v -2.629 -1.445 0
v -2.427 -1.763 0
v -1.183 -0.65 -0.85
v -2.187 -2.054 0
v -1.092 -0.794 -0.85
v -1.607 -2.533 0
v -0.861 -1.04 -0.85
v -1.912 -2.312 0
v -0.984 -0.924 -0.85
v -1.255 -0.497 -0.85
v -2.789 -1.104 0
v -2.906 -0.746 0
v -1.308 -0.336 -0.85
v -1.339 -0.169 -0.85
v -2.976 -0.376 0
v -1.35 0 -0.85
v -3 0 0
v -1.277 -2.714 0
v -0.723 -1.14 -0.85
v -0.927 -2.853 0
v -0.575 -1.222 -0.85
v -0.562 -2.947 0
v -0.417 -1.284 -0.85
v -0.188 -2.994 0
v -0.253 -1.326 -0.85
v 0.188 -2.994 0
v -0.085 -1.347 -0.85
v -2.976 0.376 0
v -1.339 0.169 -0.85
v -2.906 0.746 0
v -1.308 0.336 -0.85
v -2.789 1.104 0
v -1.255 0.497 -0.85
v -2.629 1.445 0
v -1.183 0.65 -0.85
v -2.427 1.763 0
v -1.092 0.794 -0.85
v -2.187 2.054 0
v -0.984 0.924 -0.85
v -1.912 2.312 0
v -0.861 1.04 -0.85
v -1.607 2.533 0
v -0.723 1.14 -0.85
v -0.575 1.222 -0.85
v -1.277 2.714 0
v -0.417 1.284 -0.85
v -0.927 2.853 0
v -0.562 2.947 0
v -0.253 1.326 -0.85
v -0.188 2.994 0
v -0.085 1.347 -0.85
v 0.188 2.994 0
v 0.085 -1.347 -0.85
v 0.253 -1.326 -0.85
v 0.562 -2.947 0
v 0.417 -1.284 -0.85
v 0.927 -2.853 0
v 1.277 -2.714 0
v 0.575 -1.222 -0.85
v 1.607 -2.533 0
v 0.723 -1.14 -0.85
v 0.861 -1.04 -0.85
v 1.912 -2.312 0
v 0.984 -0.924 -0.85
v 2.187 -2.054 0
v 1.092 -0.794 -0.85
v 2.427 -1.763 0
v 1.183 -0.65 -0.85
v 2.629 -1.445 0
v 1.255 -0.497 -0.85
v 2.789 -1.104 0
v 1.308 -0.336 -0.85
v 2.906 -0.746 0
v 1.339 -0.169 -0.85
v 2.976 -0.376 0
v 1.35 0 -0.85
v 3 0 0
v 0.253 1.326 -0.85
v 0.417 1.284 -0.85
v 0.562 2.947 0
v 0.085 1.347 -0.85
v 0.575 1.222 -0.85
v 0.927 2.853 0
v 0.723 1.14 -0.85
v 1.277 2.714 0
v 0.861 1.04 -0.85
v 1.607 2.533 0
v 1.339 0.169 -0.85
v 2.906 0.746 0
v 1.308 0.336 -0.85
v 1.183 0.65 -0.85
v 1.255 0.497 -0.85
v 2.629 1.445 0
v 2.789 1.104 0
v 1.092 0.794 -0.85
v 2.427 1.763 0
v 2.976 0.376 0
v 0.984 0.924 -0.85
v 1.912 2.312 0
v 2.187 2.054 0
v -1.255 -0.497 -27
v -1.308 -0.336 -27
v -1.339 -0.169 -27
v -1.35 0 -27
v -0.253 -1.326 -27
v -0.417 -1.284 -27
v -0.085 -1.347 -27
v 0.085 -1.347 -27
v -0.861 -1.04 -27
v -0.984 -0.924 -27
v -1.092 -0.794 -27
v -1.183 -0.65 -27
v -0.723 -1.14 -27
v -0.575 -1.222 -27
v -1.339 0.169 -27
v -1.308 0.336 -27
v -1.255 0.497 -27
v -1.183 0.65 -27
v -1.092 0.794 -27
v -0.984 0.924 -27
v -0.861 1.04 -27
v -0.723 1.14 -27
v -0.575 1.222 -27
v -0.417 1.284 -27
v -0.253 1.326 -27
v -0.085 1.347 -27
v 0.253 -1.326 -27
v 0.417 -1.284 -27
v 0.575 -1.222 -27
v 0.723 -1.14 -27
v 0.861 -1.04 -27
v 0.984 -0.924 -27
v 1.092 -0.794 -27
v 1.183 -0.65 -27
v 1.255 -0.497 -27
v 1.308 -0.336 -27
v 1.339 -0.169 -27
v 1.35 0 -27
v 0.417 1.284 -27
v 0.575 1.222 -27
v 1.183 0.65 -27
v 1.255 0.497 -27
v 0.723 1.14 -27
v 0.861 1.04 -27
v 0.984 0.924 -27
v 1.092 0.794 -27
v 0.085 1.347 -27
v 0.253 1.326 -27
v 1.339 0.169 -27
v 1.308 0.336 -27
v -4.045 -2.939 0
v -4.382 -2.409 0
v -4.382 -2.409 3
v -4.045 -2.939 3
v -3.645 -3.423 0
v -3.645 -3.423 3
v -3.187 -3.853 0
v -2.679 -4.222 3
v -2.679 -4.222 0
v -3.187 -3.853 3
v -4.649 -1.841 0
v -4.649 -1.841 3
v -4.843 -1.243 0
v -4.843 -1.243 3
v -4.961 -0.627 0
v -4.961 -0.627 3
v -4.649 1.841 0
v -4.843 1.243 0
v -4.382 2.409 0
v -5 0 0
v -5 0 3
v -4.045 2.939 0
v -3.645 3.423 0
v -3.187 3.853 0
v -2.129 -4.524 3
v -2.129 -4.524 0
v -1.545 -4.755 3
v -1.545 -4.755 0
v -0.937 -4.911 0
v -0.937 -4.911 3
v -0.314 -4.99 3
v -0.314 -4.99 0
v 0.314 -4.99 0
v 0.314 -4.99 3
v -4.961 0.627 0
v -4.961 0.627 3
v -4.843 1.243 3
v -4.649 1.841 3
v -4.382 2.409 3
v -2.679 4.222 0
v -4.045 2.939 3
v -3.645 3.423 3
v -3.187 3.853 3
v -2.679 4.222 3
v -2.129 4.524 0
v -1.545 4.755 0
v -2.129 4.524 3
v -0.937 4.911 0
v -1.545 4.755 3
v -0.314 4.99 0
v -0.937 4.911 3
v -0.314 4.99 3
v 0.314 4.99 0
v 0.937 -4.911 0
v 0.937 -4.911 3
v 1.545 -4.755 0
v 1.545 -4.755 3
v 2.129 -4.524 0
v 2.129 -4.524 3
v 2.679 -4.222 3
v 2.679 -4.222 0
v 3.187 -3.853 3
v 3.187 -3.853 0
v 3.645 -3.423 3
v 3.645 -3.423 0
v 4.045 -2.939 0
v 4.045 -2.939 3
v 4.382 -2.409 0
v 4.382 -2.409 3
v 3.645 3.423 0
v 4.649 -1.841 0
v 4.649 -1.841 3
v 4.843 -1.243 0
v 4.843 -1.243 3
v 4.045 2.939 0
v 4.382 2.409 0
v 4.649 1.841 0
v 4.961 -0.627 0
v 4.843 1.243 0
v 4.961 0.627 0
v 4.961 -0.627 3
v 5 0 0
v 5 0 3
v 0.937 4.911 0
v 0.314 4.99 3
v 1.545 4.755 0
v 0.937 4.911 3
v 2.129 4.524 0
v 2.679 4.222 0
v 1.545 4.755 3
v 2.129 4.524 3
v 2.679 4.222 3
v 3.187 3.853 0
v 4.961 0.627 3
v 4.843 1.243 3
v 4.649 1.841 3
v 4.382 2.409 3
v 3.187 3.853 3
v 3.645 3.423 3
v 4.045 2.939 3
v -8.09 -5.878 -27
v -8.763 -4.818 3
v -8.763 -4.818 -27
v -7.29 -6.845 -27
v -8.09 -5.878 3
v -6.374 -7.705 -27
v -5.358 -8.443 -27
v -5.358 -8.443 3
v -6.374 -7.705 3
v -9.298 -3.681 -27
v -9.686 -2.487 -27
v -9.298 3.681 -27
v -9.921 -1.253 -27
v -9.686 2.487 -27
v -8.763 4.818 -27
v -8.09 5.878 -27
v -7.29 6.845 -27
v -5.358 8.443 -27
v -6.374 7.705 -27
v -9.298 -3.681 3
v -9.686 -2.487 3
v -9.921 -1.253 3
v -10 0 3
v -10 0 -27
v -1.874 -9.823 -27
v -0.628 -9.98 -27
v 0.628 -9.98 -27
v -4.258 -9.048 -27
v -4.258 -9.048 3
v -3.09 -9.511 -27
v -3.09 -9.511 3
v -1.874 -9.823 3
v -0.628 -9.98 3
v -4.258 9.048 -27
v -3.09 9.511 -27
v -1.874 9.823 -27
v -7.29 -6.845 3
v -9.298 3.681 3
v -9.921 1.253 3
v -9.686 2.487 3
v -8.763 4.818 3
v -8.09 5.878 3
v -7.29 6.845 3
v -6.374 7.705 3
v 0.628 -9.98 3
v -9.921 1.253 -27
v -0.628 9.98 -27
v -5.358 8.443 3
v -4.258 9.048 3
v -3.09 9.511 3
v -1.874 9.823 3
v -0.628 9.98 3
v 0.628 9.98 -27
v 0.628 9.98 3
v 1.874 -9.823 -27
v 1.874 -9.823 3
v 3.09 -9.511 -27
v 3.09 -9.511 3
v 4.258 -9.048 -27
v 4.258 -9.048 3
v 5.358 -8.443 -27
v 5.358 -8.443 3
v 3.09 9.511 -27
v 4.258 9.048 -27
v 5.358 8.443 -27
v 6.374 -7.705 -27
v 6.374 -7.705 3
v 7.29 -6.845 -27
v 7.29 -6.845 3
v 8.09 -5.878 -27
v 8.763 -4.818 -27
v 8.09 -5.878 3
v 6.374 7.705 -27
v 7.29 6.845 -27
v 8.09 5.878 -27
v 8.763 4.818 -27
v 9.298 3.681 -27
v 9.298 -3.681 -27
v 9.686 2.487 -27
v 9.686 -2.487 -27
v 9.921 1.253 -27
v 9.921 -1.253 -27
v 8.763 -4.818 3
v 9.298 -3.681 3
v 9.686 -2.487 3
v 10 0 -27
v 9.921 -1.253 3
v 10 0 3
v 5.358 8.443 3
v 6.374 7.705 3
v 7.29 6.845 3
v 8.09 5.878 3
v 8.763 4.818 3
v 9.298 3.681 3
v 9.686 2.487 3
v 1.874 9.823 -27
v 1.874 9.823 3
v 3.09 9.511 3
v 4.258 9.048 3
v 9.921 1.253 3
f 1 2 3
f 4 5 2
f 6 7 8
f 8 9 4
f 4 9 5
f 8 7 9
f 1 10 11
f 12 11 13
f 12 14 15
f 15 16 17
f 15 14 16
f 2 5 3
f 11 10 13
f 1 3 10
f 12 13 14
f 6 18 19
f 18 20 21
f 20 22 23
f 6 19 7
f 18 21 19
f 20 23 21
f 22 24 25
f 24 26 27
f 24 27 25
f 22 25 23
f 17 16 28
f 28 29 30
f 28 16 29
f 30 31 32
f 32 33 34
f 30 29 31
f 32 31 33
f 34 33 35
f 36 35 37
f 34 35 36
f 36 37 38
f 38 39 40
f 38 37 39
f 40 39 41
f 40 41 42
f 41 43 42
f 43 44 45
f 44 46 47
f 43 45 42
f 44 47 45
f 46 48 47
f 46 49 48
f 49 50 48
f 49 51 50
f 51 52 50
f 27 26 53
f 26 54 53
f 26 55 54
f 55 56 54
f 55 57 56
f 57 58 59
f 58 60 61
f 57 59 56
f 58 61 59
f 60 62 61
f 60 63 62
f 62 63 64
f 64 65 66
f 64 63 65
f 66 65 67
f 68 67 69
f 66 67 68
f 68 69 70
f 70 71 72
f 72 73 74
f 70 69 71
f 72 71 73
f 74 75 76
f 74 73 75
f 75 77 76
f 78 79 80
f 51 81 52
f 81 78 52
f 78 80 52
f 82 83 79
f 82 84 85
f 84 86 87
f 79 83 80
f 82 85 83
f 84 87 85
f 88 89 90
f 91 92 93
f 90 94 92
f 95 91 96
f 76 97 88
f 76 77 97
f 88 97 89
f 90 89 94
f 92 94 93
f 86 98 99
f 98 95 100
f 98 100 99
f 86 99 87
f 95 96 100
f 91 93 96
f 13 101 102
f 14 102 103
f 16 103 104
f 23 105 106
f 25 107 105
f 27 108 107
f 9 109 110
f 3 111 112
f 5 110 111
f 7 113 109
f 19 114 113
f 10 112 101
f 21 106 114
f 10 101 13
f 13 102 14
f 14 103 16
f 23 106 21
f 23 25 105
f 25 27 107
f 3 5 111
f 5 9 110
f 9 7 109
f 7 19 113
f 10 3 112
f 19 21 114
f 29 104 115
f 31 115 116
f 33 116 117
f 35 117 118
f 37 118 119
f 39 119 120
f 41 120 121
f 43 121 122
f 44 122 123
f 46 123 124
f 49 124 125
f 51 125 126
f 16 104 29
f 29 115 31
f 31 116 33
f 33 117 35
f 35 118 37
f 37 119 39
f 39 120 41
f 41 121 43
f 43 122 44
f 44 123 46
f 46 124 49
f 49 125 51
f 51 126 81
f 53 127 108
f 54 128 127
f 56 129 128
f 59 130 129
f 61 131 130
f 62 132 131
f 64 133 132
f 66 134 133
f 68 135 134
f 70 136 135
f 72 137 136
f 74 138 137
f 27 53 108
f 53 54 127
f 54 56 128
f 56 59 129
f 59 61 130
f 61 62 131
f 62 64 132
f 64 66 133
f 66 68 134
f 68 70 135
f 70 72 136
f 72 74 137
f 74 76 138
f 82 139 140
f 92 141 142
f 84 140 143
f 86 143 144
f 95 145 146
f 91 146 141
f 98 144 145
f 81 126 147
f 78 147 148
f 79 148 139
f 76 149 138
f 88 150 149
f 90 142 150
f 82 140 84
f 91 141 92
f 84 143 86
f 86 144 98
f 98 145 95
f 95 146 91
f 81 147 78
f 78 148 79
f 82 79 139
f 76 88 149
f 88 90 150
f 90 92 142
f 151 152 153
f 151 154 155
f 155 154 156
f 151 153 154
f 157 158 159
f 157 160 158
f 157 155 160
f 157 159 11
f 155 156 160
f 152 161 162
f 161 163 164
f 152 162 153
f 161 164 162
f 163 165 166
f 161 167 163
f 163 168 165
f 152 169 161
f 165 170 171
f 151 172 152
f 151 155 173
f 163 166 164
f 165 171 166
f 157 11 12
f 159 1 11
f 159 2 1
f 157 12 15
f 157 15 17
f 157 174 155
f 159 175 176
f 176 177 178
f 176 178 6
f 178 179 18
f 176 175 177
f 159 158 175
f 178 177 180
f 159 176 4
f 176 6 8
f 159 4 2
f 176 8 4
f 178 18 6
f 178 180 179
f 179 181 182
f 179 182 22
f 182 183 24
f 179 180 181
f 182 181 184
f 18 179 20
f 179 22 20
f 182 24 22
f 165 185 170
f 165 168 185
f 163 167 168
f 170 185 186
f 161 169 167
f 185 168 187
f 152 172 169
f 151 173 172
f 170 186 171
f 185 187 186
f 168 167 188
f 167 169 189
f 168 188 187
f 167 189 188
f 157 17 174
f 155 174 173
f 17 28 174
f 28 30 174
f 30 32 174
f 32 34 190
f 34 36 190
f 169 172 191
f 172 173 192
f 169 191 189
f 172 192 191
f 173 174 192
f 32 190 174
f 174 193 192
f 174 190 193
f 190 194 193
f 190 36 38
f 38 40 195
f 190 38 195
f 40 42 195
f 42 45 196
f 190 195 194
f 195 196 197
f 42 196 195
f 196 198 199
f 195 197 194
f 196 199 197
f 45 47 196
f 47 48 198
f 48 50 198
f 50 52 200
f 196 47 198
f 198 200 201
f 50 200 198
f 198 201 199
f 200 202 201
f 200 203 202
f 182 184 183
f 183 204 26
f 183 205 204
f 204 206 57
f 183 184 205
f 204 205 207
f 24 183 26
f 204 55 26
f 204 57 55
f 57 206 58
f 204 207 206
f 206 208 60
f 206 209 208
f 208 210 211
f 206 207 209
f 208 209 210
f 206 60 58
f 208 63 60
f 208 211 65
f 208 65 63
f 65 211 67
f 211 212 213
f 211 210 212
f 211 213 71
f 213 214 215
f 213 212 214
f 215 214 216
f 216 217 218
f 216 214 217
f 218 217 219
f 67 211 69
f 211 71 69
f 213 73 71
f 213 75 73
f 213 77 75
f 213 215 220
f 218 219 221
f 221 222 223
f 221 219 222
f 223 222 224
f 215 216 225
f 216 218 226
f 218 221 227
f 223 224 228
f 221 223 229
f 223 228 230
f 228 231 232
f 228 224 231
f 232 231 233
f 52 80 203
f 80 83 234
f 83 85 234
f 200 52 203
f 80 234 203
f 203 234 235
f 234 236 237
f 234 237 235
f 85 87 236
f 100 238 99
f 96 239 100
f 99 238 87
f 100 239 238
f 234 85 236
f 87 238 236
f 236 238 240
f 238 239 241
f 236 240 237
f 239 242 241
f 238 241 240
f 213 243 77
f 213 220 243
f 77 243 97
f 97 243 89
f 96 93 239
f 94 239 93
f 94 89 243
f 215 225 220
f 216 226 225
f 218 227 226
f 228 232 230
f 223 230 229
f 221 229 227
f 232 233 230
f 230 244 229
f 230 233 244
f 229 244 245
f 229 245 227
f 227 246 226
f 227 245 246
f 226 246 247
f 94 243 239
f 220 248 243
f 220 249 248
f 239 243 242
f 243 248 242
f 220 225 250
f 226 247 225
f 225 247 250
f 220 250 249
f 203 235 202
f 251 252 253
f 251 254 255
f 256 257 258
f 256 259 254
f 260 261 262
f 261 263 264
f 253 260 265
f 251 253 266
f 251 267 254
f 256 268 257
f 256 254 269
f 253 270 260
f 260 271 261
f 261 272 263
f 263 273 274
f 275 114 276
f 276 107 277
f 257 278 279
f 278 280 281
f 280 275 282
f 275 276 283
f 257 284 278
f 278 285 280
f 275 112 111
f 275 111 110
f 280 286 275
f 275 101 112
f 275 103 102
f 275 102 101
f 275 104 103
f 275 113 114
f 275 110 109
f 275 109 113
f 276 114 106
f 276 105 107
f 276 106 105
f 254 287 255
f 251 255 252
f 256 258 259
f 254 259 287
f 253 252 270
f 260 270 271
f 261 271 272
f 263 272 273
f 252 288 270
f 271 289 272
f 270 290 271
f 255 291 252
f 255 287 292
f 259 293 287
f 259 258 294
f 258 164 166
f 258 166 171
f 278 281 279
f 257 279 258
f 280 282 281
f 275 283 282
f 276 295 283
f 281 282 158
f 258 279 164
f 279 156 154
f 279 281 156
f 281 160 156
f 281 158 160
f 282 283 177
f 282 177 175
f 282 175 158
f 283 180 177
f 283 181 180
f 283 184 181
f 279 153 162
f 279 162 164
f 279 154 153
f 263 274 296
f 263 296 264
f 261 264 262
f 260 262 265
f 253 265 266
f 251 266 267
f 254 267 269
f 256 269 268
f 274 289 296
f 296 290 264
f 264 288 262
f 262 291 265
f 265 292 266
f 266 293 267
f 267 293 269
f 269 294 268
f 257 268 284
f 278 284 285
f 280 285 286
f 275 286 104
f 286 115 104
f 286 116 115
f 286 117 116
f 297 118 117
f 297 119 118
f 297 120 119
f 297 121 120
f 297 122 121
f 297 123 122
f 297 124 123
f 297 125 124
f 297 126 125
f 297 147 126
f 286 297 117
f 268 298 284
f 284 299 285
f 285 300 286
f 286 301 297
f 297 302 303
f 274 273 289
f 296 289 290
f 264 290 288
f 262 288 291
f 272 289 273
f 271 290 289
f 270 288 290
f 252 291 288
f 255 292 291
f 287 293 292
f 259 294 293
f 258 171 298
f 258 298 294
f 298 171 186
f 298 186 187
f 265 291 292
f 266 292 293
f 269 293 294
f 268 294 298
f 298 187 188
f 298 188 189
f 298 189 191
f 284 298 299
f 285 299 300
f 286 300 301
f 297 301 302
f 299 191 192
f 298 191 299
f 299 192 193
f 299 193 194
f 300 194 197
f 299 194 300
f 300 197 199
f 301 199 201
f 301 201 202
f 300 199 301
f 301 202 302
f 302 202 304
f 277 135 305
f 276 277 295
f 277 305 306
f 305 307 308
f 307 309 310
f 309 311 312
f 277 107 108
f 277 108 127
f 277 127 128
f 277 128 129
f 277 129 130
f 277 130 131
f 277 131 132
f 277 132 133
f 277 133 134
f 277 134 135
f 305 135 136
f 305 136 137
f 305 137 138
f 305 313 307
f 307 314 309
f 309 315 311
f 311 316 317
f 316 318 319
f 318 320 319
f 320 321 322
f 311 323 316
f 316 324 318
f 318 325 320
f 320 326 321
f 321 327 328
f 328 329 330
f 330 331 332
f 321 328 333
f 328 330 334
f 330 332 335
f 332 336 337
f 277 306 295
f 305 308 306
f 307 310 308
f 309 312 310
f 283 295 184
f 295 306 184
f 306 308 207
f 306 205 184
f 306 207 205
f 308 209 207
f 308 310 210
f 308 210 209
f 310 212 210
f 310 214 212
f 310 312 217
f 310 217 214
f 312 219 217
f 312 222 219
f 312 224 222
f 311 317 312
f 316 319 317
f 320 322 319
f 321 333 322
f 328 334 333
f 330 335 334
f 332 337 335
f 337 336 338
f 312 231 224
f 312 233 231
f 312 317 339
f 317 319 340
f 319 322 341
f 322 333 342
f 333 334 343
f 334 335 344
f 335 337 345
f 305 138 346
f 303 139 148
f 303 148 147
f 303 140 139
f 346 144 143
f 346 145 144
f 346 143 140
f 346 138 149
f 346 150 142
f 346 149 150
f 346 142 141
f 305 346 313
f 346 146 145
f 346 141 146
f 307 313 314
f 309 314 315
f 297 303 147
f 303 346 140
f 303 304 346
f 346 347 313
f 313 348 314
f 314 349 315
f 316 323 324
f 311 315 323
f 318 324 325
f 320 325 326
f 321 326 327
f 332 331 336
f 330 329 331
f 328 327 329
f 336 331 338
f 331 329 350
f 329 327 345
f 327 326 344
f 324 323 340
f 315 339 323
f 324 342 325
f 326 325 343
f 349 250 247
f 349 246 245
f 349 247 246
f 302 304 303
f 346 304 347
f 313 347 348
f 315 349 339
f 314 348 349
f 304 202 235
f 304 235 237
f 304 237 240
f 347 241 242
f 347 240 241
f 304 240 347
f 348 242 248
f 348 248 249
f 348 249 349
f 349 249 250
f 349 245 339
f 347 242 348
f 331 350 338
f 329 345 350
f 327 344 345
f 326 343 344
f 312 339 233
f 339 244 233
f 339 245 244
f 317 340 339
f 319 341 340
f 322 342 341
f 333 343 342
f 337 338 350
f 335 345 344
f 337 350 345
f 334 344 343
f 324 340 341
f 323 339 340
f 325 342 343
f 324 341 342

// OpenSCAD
$fn = 50;

difference() {
	union() {
		translate(v = [0, 0, -27.0]) {
			cylinder(h = 30, r = 10.0);
		}
	}
	union() {
		translate(v = [0, 0, 0]) {
			rotate(a = [0, 0, 0]) {
				difference() {
					union() {
						translate(v = [0, 0, -30.0]) {
							cylinder(h = 30, r = 1.0);
						}
						translate(v = [0, 0, -0.85]) {
							cylinder(h = 0.85, r1 = 1.35, r2 = 3.0);
						}
						translate(v = [0, 0, -30.0]) {
							cylinder(h = 30, r = 1.35);
						}
						translate(v = [0, 0, -30.0]) {
							cylinder(h = 30, r = 1.0);
						}
					}
					union();
				}
			}
		}
		#cylinder(h = 3, r = 5.0);
	}
}
